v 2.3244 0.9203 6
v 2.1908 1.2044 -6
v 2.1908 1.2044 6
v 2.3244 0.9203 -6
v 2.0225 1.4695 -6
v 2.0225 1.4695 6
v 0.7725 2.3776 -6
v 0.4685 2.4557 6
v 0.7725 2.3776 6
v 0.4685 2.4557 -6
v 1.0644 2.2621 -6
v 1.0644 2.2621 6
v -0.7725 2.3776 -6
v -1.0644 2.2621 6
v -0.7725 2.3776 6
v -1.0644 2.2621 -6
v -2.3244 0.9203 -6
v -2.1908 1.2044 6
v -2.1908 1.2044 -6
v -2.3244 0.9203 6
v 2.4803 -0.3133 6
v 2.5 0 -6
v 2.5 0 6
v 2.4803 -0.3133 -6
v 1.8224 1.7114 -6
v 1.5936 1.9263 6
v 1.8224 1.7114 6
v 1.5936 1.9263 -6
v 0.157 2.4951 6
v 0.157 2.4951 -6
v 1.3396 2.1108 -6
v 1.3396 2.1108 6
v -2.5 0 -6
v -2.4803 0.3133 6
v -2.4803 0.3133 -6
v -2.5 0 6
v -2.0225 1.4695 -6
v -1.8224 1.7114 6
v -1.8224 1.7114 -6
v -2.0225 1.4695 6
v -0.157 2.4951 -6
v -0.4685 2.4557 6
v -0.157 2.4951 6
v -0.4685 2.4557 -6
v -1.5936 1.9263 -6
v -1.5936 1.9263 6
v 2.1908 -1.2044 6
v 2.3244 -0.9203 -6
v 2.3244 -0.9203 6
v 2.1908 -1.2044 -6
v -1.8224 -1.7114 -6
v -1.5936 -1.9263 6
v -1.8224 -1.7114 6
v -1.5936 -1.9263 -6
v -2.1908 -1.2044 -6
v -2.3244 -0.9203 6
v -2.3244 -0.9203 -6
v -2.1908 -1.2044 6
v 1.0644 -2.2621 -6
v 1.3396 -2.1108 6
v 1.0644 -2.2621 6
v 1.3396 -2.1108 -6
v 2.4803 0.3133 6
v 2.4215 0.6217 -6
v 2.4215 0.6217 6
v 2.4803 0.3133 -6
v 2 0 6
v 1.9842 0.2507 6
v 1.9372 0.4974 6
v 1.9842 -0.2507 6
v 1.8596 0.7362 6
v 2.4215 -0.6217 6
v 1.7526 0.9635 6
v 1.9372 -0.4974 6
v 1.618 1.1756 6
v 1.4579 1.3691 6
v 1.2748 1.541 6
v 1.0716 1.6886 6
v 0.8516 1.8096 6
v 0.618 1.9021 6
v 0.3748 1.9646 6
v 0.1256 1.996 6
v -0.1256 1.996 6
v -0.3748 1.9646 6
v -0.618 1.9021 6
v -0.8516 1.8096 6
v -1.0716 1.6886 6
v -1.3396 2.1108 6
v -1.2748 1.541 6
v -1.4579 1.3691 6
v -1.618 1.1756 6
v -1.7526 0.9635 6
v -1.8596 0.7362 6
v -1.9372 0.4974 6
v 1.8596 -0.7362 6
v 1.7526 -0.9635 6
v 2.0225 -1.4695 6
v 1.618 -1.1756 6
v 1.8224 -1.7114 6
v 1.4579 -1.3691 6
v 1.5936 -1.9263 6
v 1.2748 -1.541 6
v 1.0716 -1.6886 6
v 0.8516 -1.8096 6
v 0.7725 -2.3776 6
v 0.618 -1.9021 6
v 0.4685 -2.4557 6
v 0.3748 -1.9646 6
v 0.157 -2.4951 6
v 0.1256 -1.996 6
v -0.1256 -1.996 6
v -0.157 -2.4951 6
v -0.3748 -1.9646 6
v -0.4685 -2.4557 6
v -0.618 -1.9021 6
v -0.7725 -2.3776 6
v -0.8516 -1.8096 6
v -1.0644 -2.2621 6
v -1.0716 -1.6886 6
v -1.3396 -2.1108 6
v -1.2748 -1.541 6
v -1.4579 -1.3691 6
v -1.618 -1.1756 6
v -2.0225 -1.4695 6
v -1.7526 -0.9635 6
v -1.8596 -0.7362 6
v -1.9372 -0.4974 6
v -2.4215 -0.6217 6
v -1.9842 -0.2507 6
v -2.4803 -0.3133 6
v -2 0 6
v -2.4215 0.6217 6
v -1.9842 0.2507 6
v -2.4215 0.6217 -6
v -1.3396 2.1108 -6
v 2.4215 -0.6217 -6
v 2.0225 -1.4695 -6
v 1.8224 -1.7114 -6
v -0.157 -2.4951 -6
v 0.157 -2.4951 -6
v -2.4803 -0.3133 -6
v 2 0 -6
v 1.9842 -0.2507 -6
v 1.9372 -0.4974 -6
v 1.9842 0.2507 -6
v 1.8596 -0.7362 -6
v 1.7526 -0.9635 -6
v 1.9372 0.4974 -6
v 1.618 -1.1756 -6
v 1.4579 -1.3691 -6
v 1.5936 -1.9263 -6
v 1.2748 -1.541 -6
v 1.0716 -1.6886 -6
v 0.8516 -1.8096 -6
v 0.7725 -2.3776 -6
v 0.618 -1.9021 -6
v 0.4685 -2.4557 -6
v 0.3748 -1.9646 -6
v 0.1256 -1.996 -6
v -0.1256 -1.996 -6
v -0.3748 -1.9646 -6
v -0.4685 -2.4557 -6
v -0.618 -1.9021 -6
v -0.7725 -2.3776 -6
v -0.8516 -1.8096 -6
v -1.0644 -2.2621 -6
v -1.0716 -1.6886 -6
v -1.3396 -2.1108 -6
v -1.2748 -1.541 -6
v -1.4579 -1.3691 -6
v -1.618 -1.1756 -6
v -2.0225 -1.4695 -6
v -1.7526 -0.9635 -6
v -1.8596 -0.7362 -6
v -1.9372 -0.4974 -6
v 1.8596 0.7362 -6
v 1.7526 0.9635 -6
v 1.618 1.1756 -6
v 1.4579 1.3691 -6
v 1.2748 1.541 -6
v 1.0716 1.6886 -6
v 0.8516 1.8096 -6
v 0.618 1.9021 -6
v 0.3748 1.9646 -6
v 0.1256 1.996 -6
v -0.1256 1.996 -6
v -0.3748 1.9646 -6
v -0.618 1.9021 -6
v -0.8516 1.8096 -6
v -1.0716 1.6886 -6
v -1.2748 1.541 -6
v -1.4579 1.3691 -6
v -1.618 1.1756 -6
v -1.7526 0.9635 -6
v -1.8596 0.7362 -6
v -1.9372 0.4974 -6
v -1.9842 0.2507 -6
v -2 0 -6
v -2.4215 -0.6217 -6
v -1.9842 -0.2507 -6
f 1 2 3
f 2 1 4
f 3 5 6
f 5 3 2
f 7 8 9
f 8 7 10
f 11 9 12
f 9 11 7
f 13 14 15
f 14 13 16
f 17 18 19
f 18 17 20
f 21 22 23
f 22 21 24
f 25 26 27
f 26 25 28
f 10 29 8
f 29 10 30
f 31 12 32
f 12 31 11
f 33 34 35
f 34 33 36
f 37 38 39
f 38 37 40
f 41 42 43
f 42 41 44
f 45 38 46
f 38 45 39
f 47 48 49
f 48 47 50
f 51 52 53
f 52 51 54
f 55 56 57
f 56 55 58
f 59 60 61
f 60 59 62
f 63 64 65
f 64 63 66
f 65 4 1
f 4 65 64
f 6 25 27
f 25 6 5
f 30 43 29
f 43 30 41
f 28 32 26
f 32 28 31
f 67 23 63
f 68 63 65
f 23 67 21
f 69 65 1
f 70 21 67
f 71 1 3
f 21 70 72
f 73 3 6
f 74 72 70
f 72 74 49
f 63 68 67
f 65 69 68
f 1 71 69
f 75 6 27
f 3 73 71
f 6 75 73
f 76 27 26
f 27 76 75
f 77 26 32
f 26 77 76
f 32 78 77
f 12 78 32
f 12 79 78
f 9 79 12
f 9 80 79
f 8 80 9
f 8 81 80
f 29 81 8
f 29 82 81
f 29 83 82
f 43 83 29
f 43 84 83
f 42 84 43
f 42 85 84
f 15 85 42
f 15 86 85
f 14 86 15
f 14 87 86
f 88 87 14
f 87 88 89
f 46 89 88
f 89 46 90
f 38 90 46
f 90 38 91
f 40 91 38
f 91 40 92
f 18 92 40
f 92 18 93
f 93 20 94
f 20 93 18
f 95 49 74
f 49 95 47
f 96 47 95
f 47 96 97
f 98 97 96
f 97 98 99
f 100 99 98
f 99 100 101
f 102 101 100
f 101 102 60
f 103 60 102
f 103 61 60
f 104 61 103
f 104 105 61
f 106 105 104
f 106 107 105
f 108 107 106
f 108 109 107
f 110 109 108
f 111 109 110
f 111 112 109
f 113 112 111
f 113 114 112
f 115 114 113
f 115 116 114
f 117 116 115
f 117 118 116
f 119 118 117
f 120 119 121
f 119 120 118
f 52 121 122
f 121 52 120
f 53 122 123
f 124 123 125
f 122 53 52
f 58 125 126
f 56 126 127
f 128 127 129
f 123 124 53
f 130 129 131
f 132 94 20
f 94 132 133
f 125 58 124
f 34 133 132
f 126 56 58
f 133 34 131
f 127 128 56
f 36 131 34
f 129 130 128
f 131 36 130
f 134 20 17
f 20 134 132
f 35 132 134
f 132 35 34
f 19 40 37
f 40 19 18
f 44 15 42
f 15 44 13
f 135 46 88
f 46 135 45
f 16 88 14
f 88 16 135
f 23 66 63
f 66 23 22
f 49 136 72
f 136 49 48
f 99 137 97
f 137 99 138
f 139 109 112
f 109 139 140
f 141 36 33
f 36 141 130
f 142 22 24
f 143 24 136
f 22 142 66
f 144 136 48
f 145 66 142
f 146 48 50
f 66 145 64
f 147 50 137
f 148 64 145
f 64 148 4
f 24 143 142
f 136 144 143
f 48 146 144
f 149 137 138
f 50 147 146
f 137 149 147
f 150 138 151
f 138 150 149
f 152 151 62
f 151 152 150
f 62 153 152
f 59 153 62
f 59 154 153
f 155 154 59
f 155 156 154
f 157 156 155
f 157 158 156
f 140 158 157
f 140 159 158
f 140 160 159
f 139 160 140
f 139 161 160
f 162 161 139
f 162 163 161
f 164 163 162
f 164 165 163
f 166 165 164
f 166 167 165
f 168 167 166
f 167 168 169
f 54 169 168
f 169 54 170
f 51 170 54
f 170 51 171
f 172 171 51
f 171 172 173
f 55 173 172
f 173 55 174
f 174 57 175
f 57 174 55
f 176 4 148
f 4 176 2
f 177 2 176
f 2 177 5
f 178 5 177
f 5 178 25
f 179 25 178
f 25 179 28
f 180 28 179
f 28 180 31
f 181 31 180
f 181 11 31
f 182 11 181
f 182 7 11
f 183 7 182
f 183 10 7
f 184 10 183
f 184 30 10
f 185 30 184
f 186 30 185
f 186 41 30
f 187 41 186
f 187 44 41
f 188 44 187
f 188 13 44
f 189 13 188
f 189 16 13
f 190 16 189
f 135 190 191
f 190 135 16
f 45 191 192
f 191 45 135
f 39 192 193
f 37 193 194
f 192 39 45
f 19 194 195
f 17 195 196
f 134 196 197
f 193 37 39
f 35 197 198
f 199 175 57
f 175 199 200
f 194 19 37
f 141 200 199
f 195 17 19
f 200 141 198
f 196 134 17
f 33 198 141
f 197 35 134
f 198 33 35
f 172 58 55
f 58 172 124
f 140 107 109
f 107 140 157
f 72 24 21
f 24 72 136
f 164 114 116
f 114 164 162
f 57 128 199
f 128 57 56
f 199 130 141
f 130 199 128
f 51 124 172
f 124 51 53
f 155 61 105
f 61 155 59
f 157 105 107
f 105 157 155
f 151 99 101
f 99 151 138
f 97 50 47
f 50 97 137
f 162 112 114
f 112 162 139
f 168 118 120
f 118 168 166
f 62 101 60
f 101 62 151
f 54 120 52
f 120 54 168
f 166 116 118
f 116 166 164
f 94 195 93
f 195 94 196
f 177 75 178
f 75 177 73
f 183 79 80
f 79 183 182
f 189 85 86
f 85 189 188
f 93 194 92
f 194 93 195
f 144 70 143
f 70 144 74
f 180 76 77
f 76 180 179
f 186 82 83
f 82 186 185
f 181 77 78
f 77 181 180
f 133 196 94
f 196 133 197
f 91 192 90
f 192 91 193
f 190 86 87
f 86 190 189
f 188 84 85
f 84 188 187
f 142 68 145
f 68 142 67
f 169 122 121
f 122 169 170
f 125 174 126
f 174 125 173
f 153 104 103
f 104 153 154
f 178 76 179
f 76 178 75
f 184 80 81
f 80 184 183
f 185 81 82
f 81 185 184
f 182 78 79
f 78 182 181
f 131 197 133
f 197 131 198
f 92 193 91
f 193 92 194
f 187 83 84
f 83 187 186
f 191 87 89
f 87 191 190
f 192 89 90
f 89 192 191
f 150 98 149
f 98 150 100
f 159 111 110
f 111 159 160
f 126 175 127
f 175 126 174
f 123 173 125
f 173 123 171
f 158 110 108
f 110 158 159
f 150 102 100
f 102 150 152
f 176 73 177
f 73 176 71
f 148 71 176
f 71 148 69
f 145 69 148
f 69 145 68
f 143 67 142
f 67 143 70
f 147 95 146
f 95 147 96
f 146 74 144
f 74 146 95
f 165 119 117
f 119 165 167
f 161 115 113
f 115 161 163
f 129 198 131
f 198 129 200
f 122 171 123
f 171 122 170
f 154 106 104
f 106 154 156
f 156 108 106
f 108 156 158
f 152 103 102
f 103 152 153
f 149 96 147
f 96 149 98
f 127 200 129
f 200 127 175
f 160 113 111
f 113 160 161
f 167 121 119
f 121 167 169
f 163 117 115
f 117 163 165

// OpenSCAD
$fn = 50;


difference() {
	union() {
		translate(v = [0, 0, -6.0000000000]) {
			cylinder(h = 12, r = 2.5000000000);
		}
	}
	union() {
		translate(v = [0, 0, -100.0000000000]) {
			cylinder(h = 200, r = 2);
		}
	}
}
